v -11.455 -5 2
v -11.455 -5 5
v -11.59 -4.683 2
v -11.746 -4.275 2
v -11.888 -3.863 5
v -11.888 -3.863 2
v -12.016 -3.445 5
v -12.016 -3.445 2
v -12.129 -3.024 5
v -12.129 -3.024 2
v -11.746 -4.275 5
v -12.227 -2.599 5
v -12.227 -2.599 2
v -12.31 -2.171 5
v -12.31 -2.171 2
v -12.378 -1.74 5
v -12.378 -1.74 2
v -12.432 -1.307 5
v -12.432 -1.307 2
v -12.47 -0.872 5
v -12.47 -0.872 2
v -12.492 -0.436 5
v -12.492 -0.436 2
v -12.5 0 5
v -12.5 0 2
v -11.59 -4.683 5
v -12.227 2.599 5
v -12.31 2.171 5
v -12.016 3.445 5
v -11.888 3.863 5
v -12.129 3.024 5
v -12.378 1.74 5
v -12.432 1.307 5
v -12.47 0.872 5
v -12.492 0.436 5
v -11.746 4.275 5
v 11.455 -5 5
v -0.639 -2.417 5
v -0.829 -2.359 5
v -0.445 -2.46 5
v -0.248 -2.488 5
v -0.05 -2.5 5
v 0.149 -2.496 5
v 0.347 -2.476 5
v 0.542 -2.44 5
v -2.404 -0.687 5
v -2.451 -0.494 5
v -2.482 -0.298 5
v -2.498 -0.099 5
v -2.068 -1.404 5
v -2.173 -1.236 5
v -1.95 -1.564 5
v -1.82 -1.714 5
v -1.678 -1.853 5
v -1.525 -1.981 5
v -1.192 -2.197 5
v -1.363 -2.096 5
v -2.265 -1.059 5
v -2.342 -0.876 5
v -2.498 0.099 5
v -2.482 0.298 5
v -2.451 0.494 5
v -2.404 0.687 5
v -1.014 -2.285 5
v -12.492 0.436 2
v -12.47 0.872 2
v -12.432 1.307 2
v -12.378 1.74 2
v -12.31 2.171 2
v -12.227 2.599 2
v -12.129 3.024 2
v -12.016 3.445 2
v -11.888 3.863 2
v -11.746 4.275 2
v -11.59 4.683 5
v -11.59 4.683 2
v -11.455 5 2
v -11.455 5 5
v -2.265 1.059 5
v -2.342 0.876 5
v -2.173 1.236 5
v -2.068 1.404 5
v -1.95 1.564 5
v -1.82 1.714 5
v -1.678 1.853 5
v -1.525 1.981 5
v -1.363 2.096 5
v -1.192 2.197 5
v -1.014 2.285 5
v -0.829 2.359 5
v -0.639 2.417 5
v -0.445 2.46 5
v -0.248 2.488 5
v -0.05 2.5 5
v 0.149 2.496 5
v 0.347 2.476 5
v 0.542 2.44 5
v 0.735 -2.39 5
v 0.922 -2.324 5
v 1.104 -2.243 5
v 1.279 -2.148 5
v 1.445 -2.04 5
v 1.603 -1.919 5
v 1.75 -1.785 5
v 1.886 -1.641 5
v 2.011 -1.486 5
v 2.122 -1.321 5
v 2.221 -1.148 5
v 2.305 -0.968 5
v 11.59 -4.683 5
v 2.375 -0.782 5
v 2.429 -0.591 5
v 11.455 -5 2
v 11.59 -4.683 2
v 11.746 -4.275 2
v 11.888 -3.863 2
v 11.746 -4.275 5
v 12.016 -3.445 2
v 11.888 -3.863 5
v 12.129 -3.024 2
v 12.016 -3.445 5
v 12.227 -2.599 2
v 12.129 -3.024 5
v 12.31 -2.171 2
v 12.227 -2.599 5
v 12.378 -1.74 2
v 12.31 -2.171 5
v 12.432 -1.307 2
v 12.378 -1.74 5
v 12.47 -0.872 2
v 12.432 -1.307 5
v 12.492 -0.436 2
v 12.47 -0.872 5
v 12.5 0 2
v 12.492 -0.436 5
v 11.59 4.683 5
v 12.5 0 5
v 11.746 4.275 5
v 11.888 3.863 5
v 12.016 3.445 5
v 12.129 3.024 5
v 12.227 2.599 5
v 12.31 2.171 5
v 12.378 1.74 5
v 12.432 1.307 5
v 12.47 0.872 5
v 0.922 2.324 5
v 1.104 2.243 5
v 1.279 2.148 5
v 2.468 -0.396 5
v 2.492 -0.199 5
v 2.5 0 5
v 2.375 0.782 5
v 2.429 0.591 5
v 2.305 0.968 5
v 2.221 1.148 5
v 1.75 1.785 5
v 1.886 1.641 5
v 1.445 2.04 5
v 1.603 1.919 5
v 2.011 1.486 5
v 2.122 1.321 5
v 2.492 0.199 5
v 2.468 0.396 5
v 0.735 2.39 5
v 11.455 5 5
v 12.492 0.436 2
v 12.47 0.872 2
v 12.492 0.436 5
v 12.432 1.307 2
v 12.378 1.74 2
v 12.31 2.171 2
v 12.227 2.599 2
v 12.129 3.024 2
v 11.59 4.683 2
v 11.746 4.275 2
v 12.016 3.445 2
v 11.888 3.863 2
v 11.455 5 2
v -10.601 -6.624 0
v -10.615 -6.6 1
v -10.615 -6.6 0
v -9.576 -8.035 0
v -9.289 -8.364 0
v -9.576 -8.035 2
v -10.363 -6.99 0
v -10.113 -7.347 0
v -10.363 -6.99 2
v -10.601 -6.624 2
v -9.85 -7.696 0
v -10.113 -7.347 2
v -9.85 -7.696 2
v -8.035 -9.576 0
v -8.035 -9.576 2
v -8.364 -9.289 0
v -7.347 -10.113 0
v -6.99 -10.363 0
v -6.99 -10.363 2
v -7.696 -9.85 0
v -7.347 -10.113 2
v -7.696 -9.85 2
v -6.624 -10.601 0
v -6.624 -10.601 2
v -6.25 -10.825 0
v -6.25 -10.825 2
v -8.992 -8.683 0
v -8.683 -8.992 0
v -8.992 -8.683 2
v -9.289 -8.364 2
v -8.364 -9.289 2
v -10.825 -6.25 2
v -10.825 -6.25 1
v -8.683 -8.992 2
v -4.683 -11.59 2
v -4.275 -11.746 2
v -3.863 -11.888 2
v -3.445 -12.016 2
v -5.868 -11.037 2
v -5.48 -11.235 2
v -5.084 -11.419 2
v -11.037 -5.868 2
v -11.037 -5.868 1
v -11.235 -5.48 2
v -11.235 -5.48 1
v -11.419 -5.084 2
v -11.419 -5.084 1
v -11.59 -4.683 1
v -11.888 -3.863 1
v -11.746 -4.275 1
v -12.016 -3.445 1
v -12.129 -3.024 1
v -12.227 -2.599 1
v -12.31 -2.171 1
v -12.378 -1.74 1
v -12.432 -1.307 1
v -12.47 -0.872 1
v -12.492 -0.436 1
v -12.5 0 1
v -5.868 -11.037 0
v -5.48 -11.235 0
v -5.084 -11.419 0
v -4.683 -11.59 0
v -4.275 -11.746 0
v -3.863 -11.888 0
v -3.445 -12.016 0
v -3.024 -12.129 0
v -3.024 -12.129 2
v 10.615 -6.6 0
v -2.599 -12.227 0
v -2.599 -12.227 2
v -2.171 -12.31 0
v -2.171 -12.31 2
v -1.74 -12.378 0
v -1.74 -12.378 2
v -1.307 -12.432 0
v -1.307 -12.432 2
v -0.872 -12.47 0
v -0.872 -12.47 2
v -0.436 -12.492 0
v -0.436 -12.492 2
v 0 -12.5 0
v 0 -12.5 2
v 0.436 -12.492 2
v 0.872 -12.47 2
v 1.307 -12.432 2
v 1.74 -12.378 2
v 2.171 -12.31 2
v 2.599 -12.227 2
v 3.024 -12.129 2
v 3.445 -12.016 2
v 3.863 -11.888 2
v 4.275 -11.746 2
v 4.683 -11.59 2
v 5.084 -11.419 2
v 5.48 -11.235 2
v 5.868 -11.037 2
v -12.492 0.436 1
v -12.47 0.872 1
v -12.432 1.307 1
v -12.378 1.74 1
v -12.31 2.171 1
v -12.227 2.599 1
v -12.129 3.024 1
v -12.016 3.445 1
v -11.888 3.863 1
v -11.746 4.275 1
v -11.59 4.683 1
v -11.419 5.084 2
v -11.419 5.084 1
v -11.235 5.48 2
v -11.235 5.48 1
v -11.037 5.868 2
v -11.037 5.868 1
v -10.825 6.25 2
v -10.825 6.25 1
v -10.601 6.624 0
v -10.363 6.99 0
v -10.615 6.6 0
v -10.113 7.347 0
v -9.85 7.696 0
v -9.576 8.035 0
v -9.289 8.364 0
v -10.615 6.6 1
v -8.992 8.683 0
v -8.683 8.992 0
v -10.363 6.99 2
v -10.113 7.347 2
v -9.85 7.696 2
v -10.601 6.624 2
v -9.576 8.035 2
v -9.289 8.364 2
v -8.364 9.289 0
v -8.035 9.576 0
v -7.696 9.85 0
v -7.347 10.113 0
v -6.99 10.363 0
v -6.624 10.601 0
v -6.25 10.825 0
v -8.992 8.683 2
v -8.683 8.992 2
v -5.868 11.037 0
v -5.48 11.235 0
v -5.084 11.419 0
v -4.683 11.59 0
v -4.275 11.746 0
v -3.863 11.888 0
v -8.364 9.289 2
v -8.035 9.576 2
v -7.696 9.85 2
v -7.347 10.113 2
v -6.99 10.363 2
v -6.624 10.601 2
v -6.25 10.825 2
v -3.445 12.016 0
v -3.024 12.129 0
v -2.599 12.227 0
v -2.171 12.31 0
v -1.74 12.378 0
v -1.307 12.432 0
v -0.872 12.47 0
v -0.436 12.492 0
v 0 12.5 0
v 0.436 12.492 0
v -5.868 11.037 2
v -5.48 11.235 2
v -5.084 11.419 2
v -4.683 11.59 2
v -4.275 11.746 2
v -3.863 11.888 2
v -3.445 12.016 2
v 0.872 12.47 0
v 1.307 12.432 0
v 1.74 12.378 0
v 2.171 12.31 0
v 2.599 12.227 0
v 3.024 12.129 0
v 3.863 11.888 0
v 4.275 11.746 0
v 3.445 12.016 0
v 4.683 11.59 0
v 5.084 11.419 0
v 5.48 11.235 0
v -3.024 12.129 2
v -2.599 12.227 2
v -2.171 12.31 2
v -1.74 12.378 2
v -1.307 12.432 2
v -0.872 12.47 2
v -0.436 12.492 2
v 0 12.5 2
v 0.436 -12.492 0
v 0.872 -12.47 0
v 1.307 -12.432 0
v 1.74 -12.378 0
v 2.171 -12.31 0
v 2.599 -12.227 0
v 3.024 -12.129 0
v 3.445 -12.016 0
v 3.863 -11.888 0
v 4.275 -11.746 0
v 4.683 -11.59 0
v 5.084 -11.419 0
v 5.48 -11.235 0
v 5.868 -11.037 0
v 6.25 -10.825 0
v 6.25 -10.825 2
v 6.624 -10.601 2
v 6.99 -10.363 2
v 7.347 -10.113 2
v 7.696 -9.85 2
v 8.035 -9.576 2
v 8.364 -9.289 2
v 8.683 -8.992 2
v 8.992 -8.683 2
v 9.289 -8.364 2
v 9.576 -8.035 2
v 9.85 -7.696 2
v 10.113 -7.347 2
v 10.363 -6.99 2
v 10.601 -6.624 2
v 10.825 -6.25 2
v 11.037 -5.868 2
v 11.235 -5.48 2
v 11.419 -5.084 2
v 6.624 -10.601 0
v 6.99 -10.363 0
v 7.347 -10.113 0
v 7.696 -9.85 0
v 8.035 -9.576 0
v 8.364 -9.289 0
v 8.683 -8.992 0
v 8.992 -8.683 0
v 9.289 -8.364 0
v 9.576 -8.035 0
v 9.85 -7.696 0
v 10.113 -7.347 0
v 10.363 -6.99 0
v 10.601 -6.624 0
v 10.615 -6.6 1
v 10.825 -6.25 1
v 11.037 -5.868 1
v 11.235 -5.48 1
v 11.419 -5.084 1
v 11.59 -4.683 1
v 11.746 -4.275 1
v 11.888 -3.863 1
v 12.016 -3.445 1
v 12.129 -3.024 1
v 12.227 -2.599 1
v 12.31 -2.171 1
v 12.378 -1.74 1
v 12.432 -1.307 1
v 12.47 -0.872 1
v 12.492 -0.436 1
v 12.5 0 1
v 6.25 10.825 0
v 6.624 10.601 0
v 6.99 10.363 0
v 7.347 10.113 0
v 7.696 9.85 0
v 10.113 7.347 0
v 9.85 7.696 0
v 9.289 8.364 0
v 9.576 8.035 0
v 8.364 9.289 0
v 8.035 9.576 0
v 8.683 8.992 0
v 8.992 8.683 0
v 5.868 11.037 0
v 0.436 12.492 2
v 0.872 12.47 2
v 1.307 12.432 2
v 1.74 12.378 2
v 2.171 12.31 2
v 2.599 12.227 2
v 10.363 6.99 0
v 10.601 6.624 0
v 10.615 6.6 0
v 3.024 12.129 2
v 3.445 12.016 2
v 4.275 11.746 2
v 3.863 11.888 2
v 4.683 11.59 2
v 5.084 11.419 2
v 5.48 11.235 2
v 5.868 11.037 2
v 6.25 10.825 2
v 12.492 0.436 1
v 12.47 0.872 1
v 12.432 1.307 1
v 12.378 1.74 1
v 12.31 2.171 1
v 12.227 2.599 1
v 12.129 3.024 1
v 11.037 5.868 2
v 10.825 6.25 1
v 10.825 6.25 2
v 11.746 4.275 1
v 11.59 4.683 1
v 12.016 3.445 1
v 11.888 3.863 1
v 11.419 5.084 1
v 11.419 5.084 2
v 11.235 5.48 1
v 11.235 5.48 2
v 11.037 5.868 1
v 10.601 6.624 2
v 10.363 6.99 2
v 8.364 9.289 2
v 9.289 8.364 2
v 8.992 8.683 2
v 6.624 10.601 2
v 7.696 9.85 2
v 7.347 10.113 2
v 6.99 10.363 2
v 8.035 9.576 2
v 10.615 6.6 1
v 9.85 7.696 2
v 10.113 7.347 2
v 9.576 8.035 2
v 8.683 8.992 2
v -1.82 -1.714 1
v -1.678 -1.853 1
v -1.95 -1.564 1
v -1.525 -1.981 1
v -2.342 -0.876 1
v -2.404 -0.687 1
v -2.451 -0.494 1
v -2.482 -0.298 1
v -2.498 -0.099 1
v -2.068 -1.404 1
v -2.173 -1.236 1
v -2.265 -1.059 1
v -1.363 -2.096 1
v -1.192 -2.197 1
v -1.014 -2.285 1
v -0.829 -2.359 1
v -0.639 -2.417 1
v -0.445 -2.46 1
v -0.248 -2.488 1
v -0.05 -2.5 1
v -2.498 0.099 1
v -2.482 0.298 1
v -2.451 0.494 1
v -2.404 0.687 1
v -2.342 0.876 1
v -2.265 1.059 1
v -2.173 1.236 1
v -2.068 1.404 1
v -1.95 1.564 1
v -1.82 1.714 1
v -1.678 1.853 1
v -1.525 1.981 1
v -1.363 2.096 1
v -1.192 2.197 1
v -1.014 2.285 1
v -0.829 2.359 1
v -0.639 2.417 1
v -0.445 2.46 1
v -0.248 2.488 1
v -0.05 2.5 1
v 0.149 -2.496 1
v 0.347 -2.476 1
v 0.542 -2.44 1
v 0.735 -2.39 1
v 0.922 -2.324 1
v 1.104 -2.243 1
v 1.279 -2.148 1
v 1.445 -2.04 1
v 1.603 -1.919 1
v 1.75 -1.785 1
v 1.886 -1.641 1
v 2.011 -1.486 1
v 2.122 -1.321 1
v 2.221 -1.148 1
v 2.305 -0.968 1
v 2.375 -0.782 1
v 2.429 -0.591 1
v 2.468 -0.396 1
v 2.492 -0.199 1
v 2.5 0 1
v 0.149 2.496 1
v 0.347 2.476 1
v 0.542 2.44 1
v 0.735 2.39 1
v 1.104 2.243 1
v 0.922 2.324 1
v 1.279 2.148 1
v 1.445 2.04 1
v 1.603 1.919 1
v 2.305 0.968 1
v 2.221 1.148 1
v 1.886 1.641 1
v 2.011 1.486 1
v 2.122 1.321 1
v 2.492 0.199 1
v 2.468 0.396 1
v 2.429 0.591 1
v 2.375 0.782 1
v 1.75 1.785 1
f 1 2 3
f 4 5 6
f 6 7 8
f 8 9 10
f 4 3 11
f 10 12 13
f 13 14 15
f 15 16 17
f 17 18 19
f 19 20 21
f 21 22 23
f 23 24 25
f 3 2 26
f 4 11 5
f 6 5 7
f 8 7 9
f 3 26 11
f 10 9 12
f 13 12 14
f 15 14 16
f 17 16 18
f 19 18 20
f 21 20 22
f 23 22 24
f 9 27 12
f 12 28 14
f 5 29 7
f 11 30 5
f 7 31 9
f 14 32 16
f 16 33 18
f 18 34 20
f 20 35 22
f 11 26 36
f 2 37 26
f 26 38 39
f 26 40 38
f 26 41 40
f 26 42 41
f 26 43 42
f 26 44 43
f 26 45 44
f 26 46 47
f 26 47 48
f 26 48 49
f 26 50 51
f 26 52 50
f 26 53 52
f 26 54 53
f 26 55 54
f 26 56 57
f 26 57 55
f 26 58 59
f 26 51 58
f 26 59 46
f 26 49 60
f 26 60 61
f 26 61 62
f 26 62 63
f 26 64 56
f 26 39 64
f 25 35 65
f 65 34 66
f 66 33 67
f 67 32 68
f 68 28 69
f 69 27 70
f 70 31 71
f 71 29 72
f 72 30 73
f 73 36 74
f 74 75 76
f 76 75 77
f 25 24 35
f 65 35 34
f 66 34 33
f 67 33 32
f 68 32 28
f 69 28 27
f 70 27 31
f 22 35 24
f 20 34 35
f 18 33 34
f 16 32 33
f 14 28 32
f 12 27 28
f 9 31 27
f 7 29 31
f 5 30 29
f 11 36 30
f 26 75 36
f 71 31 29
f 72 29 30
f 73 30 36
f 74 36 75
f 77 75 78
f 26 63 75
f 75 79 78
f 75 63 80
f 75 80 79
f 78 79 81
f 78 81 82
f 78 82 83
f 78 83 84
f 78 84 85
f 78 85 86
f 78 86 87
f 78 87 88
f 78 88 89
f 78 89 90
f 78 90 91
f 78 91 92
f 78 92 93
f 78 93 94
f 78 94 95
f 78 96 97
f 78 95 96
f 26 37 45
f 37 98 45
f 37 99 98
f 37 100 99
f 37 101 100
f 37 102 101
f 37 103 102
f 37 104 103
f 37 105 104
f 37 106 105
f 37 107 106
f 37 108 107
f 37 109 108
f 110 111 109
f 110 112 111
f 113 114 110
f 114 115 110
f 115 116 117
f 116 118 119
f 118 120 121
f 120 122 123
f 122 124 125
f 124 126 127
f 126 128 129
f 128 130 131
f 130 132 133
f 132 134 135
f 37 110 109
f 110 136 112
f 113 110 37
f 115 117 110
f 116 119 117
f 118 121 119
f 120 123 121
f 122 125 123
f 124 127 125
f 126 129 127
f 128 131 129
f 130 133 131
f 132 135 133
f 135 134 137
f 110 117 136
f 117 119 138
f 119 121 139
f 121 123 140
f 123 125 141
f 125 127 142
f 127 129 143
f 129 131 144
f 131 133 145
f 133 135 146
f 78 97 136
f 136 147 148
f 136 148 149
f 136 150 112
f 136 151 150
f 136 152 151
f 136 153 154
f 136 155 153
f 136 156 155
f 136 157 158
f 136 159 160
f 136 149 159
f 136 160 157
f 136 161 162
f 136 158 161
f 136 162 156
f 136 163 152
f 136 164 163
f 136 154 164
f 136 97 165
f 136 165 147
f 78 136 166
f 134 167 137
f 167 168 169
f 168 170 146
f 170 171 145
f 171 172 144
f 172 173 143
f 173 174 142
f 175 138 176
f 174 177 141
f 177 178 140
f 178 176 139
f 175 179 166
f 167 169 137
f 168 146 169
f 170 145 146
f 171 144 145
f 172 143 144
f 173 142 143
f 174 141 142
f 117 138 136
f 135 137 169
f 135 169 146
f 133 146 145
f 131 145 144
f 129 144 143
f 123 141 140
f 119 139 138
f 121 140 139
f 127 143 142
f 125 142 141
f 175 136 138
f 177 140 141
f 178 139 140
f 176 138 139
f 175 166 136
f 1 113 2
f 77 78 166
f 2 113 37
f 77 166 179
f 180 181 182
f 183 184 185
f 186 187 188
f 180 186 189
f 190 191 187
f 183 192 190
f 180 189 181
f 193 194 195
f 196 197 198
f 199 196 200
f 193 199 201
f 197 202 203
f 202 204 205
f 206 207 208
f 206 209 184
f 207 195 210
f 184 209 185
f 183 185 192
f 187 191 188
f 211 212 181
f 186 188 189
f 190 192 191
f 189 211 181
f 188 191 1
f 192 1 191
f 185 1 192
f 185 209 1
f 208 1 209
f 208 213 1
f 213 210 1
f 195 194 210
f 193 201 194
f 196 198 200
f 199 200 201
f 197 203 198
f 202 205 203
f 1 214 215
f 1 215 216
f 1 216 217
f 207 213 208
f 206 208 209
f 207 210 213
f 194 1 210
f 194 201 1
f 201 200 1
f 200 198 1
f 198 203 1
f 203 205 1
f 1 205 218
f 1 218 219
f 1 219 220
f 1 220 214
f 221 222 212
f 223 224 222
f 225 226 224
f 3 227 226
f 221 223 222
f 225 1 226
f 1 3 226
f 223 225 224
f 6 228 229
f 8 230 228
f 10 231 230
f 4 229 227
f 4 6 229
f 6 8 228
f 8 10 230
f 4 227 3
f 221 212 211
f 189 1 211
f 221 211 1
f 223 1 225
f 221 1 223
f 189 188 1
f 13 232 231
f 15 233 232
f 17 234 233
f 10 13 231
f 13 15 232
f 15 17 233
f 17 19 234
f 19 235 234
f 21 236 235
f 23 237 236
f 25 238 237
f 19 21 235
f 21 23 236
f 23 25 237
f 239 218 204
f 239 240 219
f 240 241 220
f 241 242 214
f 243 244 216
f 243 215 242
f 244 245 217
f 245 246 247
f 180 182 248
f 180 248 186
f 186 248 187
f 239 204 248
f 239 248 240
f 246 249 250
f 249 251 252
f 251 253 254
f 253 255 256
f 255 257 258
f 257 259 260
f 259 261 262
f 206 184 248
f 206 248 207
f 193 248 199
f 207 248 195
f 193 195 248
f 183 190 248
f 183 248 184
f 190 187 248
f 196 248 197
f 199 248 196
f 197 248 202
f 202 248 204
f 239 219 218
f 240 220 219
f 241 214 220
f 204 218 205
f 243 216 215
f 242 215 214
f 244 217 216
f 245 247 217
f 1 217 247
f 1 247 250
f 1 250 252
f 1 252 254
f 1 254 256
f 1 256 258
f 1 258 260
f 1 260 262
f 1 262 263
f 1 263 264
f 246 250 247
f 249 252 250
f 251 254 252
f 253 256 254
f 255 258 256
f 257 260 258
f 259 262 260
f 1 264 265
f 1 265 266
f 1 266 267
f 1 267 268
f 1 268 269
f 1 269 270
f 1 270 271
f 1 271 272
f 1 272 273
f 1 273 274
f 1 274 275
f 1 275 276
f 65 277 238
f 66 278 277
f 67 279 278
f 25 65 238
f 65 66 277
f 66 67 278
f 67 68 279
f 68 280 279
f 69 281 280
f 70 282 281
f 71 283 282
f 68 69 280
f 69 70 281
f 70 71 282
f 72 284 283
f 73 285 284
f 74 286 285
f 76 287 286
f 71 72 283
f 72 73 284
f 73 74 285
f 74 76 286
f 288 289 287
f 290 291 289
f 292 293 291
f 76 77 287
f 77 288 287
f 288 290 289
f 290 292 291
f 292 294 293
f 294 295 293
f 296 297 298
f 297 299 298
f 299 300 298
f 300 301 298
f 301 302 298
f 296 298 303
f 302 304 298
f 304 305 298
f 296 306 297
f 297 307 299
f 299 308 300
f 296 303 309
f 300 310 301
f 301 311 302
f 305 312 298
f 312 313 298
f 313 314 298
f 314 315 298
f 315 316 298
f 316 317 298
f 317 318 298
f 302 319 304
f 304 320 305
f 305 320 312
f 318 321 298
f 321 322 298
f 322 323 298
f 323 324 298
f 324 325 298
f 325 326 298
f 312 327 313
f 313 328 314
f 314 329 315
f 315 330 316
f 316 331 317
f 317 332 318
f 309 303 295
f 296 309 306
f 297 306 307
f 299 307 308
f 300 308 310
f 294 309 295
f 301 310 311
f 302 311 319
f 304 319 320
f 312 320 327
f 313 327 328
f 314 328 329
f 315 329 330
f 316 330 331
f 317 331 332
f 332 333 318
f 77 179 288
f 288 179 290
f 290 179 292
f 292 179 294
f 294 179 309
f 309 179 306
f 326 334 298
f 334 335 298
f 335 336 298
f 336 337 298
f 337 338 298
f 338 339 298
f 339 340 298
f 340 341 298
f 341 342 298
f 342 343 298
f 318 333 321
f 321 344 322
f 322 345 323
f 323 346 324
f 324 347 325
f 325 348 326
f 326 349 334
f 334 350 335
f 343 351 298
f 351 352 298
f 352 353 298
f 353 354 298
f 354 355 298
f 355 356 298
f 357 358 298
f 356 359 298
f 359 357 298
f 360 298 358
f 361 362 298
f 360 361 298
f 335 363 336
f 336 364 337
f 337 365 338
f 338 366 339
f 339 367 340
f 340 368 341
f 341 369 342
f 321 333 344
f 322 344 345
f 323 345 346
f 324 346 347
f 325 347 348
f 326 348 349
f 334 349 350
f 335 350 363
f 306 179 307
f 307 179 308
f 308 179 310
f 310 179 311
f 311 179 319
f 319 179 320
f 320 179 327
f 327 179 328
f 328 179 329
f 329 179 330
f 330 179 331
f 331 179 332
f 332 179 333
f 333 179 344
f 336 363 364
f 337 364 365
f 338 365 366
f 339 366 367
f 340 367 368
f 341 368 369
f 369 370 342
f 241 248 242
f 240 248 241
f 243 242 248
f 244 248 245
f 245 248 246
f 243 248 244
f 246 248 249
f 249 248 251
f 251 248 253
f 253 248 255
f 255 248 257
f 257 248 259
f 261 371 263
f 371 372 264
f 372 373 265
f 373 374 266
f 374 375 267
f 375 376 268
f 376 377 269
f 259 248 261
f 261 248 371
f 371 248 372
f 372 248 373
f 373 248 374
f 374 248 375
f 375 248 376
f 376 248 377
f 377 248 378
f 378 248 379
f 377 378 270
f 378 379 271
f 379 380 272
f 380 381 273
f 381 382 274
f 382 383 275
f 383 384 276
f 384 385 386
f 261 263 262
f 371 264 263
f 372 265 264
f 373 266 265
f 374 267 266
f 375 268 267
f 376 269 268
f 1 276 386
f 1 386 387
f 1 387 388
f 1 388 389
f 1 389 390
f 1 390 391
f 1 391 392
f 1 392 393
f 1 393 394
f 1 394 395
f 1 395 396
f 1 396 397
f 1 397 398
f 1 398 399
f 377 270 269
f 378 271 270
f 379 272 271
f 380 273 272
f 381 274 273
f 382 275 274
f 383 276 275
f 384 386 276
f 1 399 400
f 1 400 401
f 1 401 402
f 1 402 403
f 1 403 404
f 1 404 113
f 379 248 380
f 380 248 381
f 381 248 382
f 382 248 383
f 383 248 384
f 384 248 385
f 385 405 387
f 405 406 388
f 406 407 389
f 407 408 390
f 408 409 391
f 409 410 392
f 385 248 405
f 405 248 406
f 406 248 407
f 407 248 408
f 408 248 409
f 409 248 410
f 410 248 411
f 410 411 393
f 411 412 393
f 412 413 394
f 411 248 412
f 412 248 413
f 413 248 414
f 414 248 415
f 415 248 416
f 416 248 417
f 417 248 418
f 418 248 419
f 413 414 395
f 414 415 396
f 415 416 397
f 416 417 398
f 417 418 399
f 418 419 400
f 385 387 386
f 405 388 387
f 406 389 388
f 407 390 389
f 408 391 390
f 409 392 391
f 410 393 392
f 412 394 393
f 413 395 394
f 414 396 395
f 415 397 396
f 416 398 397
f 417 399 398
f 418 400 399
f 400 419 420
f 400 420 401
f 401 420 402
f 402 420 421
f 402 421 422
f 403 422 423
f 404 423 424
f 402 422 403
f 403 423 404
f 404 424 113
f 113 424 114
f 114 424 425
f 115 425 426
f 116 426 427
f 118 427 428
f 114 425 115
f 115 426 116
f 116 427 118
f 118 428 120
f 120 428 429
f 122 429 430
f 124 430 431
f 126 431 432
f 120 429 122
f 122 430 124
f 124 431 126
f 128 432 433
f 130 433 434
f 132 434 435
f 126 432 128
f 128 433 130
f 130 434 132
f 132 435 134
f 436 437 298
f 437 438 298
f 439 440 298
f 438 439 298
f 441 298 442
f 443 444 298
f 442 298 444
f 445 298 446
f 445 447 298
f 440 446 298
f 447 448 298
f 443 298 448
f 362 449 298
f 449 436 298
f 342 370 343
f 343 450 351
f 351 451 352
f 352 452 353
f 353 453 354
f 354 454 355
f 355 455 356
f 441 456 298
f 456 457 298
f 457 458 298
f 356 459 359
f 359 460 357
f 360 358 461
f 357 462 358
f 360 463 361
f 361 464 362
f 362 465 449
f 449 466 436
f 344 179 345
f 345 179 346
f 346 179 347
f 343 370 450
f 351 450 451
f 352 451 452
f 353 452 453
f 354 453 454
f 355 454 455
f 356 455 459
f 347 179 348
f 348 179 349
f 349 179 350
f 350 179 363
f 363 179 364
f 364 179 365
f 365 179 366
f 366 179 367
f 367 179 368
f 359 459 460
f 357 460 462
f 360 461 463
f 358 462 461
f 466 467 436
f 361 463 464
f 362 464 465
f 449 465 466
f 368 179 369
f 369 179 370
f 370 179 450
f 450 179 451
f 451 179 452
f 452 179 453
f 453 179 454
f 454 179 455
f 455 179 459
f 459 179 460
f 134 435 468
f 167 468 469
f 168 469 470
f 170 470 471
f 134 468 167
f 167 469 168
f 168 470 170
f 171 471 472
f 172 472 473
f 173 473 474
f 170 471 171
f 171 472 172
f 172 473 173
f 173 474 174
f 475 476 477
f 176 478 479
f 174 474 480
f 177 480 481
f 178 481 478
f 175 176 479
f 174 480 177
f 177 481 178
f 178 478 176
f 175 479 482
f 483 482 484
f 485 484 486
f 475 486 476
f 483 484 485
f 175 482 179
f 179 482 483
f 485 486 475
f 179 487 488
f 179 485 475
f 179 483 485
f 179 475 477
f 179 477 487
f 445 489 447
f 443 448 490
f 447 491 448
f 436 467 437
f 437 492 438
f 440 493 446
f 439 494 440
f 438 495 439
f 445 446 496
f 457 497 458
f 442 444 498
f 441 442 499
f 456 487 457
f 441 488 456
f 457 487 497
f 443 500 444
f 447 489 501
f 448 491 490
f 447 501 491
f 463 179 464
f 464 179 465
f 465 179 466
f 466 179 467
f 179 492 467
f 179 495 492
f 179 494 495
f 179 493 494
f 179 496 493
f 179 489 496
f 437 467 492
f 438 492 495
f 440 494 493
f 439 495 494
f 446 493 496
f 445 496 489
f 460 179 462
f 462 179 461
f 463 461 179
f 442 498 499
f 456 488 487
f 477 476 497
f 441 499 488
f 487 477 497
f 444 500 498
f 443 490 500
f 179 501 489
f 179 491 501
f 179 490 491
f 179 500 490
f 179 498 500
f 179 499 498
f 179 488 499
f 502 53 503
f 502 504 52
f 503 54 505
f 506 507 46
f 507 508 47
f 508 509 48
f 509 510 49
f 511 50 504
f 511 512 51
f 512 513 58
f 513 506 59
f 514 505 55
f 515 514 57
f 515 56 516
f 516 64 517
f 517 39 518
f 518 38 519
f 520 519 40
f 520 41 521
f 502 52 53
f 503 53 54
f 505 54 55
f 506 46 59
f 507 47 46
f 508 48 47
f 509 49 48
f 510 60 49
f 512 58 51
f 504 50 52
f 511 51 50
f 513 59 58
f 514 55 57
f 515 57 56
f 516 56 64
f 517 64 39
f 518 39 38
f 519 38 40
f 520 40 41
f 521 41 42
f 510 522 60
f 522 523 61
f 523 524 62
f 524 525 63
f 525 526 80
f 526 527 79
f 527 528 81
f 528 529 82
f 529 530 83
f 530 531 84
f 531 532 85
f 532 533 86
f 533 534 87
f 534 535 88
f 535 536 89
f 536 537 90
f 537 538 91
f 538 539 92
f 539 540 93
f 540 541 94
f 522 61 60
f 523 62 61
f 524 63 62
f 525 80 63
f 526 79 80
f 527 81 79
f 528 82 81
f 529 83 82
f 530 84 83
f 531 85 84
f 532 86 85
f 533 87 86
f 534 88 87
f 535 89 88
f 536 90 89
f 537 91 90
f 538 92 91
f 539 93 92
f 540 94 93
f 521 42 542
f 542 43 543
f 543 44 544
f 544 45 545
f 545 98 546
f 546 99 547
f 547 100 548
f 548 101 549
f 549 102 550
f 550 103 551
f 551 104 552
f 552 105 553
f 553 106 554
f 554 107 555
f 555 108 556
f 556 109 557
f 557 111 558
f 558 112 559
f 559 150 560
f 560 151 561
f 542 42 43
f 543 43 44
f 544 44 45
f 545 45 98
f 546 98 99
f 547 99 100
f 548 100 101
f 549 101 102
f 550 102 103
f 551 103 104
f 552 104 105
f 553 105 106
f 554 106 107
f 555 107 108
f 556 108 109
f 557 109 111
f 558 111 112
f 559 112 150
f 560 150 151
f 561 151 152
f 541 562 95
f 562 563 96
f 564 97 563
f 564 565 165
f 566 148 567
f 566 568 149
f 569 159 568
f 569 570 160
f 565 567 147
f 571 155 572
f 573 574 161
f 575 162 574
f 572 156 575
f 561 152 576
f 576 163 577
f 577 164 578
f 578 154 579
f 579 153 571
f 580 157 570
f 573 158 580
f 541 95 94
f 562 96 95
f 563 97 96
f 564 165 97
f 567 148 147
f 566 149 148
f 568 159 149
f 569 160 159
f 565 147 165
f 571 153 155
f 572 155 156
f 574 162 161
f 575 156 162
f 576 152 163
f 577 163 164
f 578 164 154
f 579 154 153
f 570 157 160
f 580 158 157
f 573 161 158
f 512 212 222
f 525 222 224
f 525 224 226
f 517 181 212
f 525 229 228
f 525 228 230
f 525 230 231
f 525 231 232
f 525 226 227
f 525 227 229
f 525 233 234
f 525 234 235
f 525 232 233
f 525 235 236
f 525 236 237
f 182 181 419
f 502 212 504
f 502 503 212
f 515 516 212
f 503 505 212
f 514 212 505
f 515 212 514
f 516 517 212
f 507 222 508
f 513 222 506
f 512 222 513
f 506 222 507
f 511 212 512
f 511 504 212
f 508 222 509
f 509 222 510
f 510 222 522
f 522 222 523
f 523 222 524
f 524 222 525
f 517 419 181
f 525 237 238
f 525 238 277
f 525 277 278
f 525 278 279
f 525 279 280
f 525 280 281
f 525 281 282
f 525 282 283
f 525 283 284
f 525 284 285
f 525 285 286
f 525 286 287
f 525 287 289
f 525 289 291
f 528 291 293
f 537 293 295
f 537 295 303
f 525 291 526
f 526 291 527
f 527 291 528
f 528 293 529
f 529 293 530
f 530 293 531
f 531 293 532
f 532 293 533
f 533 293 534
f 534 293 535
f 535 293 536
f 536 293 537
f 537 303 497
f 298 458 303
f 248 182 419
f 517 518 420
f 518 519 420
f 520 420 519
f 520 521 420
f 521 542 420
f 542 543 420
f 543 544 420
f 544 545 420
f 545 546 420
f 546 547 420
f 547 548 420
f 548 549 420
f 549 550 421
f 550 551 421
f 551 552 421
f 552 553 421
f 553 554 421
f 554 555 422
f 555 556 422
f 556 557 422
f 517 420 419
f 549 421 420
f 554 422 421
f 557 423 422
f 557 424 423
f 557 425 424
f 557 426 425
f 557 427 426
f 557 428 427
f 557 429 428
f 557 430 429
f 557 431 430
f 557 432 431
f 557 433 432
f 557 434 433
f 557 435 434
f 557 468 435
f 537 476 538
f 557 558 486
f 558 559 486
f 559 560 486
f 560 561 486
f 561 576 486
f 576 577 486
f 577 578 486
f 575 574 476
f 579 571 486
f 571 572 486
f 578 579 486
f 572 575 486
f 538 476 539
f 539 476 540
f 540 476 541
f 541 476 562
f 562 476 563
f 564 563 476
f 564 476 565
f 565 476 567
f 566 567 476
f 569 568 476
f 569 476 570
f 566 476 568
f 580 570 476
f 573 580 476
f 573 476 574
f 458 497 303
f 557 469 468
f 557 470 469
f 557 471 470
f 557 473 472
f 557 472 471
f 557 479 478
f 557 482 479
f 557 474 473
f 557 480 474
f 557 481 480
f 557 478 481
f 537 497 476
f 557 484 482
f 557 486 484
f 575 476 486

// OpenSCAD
/*
    Frameless Solar Panel Washer — Separator Washer
    ------------------------------------------------
    Parametric & modular separator washer:

      * Annular washer body: ID 5 mm, OD 25 mm, thickness 2 mm
      * Top:    a strip running across the full diameter (through the
                center) from one end to the other, 10 mm wide, protruding
                3 mm above the top face. Its ends follow the OD curve.
      * Bottom: a channel running in the same direction (full diameter,
                through the center), 12 mm wide, cut 1 mm deep into the
                bottom face.
      * When fill_one_side = true (single solar panel on one side):
                the whole side of the washer outboard of the strip (+Y)
                is filled solid from the bottom face up to the top of
                the strip, and the channel is only cut on the open side.

    The washer is symmetric, so only one fill side is modeled — flip the
    printed part 180 degrees for the opposite orientation.

    All dimensions are parameters — adjust at the top. Set $fn/$fa/$fs
    via quality parameters or command-line overrides.

    Example overrides:
        openscad -D id=6 -D od=32 -o out.stl model.scad
*/

// ============================================================
// Parameters
// ============================================================

// --- Washer body ---
id              = 5;    // inner (hole) diameter       [mm]
od              = 25;   // outer diameter              [mm]
thickness       = 2;    // washer body thickness       [mm]

// --- Top strip (same direction as channel, along X) ---
strip_width     = 10;   // strip width (Y)             [mm]
strip_height    = 3;    // strip height above top face [mm]
strip_length    = od;   // strip span (X) — default: full OD

// --- Bottom channel (along X) ---
channel_width   = 13.2; // channel width (Y)           [mm]
channel_depth   = 1;    // channel depth from bottom   [mm]
channel_length  = od;   // channel span (X) — default: full OD

// --- Single-panel option ---
fill_one_side   = false; // true: everything on the +Y side of the strip
                        //       (outboard of strip_width/2, up to the
                        //       OD curve) is solid up to the top of the
                        //       strip; channel cut only on -Y side.
                        // false: channel open on both sides of strip

// --- Modeling / quality ---
$fa             = 2;    // fragment angle  [deg]
$fs             = 0.2;  // fragment size   [mm]


// ============================================================
// Sanity checks (fail fast on impossible geometry)
// ============================================================

assert(id > 0,                 "id must be positive");
assert(od > id,                "od must be greater than id");
assert(thickness > 0,          "thickness must be positive");
assert(channel_depth < thickness,
                               "channel would cut through the top face");
assert(strip_width <= od,      "strip_width cannot exceed od");
assert(channel_width <= od,    "channel_width cannot exceed od");
assert(!fill_one_side || channel_width > strip_width,
                               "fill_one_side requires channel_width > strip_width");

// ============================================================
// Top level
// ============================================================

module separator_washer() {
    difference() {
        union() {
            washer_body();
            top_strip();
            channel_fill();
        }
        center_hole();
        bottom_channel();
    }
}

// ============================================================
// Modules
// ============================================================

// Annular body: cylinder from z = 0 to z = thickness
module washer_body() {
    cylinder(h = thickness, d = od, center = false);
}

// Central through-hole (cut last so it stays open everywhere)
module center_hole() {
    eps = 0.01;
    translate([0, 0, -eps])
        cylinder(h = thickness + strip_height + channel_depth + 2*eps,
                 d = id, center = false);
}

// Strip on top face, spanning the full diameter along X; protrudes
// strip_height above the top face. Ends are trimmed to the washer's
// circular footprint, so they follow the OD curve.
module top_strip() {
    translate([0, 0, thickness])
        intersection() {
            cylinder(h = strip_height, d = od, center = false);
            translate([-strip_length/2, -strip_width/2, 0])
                cube([strip_length, strip_width, strip_height]);
        }
}

// Channel cut into the bottom face along X (same direction as strip).
// When one side is filled, the cut is limited to the open (-Y) side.
module bottom_channel() {
    eps = 0.01;
    y1 = fill_one_side ? strip_width/2 : channel_width/2;
    translate([-channel_length/2, -channel_width/2, -eps])
        cube([channel_length, channel_width/2 + y1, channel_depth + eps]);
}

// Solid fill of the +Y side outboard of the strip, from the bottom face
// up to the top of the strip. Outer end follows the OD curve.
module channel_fill() {
    if (fill_one_side) {
        intersection() {
            cylinder(h = thickness + strip_height, d = od, center = false);
            translate([-channel_length/2, strip_width/2, 0])
                cube([channel_length, od, thickness + strip_height]);
        }
    }
}

// ============================================================
// Render
// ============================================================

// Bottom face of the washer sits at z = 0 (channel is cut *into* it),
// so the model is already print-ready on the build plate.
separator_washer();
